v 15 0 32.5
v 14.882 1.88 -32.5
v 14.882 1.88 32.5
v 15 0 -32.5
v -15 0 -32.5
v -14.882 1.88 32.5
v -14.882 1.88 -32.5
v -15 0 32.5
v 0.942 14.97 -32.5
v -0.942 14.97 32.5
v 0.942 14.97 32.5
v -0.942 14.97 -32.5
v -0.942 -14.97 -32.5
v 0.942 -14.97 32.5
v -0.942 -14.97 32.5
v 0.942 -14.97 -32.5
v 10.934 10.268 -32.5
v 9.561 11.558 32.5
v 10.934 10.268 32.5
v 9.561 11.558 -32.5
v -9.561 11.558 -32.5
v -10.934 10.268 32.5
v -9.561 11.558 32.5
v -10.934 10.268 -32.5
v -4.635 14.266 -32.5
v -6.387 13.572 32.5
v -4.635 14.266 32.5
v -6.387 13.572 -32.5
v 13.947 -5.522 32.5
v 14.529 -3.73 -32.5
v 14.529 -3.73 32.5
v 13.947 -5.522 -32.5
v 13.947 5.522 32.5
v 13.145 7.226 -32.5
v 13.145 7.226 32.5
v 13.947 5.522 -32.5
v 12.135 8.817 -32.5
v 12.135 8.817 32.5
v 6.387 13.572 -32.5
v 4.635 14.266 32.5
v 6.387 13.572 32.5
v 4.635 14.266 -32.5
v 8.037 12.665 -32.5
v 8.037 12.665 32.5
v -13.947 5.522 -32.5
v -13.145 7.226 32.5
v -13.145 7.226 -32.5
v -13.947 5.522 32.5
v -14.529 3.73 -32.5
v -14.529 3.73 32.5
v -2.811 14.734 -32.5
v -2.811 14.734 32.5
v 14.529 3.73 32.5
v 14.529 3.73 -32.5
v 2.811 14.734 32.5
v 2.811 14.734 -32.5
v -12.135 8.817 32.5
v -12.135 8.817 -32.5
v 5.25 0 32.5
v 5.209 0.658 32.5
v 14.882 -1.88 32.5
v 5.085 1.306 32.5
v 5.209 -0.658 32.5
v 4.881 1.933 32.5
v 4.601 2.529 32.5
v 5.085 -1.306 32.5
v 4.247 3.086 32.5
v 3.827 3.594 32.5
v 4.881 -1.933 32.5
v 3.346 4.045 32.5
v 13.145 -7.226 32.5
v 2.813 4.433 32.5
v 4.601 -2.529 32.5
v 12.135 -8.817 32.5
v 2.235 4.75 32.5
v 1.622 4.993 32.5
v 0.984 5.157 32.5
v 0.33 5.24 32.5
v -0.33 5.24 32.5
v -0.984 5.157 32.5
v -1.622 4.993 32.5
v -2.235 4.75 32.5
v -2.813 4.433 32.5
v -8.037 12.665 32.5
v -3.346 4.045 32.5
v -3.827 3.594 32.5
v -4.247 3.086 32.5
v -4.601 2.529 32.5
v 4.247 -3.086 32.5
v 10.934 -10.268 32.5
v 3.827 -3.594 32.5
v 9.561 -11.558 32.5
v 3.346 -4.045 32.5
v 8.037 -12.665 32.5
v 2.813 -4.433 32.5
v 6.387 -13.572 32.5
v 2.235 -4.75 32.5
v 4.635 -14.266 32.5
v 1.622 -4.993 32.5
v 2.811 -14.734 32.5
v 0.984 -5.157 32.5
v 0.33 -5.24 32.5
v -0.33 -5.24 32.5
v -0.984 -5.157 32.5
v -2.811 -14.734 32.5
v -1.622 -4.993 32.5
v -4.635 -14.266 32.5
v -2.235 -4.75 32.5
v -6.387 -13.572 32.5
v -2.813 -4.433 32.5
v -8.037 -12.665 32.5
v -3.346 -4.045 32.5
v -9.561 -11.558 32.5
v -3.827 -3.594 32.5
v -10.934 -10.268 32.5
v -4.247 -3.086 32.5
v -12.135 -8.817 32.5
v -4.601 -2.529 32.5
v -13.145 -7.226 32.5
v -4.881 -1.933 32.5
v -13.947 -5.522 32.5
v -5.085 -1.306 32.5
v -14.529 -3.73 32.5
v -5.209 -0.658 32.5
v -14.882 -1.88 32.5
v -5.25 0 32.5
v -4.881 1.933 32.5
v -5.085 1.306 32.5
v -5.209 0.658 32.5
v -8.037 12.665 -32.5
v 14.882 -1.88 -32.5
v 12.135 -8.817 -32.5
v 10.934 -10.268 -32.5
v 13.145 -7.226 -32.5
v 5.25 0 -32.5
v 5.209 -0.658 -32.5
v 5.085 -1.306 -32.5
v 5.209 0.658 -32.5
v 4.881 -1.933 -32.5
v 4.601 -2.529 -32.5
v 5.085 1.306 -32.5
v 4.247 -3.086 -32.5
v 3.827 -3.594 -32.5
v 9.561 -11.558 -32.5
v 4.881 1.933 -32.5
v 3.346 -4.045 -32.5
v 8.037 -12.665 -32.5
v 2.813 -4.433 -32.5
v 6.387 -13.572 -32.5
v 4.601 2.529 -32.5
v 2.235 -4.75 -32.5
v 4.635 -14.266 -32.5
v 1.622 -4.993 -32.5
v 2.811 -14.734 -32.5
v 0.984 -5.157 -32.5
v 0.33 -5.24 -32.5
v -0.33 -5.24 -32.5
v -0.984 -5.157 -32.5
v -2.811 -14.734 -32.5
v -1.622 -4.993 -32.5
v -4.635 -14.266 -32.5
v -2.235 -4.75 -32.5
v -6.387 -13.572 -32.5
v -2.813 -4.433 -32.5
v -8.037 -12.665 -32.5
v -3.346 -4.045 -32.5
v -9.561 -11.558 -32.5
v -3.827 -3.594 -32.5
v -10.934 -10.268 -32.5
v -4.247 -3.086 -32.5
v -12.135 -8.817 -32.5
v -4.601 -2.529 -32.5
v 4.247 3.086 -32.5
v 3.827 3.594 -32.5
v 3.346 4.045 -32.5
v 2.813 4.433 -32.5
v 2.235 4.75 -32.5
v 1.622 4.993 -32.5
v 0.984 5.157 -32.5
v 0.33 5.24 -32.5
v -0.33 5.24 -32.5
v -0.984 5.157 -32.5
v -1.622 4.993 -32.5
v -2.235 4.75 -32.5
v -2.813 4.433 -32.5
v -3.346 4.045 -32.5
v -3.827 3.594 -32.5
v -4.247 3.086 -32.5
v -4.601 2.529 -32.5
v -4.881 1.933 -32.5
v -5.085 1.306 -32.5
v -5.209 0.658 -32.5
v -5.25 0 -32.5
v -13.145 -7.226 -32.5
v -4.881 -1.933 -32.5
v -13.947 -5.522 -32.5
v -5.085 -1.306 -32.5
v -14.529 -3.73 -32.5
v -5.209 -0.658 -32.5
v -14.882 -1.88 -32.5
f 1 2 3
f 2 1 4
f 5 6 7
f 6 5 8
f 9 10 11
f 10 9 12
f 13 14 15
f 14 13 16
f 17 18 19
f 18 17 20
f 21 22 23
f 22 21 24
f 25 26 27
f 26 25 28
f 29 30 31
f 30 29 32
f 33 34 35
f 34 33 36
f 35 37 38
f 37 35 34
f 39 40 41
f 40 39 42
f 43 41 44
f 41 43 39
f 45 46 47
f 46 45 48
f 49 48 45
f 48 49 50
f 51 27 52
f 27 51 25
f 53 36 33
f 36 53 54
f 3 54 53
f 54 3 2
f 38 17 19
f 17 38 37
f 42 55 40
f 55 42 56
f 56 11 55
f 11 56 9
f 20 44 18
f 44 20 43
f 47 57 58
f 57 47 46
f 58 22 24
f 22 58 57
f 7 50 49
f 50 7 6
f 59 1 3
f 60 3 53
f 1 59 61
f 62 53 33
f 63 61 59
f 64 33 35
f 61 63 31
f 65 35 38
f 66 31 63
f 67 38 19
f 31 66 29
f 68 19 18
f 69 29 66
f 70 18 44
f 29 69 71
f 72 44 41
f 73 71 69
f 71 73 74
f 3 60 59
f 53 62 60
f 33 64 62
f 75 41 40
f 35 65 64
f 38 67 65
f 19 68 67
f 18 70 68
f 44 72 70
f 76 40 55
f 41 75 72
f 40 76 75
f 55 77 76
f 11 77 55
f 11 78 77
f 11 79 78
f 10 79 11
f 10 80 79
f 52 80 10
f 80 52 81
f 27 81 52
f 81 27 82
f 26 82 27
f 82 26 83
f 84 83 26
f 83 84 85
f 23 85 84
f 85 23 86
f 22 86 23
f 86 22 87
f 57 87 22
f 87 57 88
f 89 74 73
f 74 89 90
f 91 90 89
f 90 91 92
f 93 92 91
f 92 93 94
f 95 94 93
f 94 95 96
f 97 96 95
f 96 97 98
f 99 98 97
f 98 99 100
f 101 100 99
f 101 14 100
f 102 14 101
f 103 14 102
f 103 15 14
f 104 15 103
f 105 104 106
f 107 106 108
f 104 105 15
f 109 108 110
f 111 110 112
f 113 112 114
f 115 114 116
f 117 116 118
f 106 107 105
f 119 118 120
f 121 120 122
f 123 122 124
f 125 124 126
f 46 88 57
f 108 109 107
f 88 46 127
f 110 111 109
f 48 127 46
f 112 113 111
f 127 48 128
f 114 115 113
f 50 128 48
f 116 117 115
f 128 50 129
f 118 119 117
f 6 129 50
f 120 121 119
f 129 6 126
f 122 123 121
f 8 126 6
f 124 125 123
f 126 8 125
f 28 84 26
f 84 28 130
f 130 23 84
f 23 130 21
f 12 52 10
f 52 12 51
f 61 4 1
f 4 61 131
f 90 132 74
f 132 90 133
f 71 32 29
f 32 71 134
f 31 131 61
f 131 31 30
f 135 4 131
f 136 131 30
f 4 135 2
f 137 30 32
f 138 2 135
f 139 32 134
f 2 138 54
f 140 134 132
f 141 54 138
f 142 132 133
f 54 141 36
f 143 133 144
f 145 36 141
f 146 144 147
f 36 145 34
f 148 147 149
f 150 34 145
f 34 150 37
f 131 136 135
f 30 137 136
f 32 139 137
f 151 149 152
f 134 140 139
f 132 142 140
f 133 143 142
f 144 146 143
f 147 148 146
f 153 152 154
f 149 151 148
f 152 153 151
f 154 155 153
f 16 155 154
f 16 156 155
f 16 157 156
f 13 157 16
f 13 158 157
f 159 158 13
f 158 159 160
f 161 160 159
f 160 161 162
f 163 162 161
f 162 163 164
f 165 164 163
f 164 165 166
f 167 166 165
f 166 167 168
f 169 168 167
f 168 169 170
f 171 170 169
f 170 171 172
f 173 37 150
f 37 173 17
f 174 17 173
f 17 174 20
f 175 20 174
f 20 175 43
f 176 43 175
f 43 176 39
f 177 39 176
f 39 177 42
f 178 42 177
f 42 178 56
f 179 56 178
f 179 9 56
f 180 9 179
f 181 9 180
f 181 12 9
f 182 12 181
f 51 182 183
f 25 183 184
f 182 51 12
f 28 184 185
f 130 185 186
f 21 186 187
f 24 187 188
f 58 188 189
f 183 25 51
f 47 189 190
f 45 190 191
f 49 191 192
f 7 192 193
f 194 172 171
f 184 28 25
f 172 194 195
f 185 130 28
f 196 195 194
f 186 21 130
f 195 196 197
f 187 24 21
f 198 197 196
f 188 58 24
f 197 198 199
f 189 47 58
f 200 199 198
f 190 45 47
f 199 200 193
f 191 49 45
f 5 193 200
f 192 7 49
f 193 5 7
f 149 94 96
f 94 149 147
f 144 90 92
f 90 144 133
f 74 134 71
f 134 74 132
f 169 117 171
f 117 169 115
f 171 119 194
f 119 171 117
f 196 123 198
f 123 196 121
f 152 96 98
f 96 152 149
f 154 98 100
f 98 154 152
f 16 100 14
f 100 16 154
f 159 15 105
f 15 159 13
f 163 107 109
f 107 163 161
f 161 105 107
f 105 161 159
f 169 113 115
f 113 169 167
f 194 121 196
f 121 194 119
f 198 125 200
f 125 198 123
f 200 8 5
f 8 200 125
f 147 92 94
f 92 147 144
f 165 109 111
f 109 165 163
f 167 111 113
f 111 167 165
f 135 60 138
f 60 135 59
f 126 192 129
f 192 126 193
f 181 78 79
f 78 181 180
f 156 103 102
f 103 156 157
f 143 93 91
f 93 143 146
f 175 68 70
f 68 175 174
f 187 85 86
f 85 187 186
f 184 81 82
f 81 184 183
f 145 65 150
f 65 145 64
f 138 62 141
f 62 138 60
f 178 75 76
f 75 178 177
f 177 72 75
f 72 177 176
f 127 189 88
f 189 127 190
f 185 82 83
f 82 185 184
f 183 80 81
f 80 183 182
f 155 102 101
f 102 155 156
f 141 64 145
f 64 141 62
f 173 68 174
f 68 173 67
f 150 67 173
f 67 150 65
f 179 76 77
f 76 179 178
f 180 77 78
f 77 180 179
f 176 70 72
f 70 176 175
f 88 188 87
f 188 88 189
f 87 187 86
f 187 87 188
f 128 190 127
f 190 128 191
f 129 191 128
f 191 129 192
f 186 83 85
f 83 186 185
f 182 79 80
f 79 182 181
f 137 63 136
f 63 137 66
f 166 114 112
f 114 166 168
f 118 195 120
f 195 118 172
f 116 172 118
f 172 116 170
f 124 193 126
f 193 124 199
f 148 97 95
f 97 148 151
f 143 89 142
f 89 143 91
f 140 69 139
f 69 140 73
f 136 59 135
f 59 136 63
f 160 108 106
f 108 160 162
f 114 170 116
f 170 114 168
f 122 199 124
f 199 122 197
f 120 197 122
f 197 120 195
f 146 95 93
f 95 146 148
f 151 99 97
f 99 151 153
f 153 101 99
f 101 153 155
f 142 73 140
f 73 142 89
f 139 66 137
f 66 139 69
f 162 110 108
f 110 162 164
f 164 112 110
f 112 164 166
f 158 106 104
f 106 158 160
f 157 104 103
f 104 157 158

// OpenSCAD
$fn = 50;


difference() {
	union() {
		translate(v = [0, 0, -32.5000000000]) {
			cylinder(h = 65, r = 15.0000000000);
		}
	}
	union() {
		translate(v = [0, 0, -100.0000000000]) {
			cylinder(h = 200, r = 5.2500000000);
		}
	}
}
